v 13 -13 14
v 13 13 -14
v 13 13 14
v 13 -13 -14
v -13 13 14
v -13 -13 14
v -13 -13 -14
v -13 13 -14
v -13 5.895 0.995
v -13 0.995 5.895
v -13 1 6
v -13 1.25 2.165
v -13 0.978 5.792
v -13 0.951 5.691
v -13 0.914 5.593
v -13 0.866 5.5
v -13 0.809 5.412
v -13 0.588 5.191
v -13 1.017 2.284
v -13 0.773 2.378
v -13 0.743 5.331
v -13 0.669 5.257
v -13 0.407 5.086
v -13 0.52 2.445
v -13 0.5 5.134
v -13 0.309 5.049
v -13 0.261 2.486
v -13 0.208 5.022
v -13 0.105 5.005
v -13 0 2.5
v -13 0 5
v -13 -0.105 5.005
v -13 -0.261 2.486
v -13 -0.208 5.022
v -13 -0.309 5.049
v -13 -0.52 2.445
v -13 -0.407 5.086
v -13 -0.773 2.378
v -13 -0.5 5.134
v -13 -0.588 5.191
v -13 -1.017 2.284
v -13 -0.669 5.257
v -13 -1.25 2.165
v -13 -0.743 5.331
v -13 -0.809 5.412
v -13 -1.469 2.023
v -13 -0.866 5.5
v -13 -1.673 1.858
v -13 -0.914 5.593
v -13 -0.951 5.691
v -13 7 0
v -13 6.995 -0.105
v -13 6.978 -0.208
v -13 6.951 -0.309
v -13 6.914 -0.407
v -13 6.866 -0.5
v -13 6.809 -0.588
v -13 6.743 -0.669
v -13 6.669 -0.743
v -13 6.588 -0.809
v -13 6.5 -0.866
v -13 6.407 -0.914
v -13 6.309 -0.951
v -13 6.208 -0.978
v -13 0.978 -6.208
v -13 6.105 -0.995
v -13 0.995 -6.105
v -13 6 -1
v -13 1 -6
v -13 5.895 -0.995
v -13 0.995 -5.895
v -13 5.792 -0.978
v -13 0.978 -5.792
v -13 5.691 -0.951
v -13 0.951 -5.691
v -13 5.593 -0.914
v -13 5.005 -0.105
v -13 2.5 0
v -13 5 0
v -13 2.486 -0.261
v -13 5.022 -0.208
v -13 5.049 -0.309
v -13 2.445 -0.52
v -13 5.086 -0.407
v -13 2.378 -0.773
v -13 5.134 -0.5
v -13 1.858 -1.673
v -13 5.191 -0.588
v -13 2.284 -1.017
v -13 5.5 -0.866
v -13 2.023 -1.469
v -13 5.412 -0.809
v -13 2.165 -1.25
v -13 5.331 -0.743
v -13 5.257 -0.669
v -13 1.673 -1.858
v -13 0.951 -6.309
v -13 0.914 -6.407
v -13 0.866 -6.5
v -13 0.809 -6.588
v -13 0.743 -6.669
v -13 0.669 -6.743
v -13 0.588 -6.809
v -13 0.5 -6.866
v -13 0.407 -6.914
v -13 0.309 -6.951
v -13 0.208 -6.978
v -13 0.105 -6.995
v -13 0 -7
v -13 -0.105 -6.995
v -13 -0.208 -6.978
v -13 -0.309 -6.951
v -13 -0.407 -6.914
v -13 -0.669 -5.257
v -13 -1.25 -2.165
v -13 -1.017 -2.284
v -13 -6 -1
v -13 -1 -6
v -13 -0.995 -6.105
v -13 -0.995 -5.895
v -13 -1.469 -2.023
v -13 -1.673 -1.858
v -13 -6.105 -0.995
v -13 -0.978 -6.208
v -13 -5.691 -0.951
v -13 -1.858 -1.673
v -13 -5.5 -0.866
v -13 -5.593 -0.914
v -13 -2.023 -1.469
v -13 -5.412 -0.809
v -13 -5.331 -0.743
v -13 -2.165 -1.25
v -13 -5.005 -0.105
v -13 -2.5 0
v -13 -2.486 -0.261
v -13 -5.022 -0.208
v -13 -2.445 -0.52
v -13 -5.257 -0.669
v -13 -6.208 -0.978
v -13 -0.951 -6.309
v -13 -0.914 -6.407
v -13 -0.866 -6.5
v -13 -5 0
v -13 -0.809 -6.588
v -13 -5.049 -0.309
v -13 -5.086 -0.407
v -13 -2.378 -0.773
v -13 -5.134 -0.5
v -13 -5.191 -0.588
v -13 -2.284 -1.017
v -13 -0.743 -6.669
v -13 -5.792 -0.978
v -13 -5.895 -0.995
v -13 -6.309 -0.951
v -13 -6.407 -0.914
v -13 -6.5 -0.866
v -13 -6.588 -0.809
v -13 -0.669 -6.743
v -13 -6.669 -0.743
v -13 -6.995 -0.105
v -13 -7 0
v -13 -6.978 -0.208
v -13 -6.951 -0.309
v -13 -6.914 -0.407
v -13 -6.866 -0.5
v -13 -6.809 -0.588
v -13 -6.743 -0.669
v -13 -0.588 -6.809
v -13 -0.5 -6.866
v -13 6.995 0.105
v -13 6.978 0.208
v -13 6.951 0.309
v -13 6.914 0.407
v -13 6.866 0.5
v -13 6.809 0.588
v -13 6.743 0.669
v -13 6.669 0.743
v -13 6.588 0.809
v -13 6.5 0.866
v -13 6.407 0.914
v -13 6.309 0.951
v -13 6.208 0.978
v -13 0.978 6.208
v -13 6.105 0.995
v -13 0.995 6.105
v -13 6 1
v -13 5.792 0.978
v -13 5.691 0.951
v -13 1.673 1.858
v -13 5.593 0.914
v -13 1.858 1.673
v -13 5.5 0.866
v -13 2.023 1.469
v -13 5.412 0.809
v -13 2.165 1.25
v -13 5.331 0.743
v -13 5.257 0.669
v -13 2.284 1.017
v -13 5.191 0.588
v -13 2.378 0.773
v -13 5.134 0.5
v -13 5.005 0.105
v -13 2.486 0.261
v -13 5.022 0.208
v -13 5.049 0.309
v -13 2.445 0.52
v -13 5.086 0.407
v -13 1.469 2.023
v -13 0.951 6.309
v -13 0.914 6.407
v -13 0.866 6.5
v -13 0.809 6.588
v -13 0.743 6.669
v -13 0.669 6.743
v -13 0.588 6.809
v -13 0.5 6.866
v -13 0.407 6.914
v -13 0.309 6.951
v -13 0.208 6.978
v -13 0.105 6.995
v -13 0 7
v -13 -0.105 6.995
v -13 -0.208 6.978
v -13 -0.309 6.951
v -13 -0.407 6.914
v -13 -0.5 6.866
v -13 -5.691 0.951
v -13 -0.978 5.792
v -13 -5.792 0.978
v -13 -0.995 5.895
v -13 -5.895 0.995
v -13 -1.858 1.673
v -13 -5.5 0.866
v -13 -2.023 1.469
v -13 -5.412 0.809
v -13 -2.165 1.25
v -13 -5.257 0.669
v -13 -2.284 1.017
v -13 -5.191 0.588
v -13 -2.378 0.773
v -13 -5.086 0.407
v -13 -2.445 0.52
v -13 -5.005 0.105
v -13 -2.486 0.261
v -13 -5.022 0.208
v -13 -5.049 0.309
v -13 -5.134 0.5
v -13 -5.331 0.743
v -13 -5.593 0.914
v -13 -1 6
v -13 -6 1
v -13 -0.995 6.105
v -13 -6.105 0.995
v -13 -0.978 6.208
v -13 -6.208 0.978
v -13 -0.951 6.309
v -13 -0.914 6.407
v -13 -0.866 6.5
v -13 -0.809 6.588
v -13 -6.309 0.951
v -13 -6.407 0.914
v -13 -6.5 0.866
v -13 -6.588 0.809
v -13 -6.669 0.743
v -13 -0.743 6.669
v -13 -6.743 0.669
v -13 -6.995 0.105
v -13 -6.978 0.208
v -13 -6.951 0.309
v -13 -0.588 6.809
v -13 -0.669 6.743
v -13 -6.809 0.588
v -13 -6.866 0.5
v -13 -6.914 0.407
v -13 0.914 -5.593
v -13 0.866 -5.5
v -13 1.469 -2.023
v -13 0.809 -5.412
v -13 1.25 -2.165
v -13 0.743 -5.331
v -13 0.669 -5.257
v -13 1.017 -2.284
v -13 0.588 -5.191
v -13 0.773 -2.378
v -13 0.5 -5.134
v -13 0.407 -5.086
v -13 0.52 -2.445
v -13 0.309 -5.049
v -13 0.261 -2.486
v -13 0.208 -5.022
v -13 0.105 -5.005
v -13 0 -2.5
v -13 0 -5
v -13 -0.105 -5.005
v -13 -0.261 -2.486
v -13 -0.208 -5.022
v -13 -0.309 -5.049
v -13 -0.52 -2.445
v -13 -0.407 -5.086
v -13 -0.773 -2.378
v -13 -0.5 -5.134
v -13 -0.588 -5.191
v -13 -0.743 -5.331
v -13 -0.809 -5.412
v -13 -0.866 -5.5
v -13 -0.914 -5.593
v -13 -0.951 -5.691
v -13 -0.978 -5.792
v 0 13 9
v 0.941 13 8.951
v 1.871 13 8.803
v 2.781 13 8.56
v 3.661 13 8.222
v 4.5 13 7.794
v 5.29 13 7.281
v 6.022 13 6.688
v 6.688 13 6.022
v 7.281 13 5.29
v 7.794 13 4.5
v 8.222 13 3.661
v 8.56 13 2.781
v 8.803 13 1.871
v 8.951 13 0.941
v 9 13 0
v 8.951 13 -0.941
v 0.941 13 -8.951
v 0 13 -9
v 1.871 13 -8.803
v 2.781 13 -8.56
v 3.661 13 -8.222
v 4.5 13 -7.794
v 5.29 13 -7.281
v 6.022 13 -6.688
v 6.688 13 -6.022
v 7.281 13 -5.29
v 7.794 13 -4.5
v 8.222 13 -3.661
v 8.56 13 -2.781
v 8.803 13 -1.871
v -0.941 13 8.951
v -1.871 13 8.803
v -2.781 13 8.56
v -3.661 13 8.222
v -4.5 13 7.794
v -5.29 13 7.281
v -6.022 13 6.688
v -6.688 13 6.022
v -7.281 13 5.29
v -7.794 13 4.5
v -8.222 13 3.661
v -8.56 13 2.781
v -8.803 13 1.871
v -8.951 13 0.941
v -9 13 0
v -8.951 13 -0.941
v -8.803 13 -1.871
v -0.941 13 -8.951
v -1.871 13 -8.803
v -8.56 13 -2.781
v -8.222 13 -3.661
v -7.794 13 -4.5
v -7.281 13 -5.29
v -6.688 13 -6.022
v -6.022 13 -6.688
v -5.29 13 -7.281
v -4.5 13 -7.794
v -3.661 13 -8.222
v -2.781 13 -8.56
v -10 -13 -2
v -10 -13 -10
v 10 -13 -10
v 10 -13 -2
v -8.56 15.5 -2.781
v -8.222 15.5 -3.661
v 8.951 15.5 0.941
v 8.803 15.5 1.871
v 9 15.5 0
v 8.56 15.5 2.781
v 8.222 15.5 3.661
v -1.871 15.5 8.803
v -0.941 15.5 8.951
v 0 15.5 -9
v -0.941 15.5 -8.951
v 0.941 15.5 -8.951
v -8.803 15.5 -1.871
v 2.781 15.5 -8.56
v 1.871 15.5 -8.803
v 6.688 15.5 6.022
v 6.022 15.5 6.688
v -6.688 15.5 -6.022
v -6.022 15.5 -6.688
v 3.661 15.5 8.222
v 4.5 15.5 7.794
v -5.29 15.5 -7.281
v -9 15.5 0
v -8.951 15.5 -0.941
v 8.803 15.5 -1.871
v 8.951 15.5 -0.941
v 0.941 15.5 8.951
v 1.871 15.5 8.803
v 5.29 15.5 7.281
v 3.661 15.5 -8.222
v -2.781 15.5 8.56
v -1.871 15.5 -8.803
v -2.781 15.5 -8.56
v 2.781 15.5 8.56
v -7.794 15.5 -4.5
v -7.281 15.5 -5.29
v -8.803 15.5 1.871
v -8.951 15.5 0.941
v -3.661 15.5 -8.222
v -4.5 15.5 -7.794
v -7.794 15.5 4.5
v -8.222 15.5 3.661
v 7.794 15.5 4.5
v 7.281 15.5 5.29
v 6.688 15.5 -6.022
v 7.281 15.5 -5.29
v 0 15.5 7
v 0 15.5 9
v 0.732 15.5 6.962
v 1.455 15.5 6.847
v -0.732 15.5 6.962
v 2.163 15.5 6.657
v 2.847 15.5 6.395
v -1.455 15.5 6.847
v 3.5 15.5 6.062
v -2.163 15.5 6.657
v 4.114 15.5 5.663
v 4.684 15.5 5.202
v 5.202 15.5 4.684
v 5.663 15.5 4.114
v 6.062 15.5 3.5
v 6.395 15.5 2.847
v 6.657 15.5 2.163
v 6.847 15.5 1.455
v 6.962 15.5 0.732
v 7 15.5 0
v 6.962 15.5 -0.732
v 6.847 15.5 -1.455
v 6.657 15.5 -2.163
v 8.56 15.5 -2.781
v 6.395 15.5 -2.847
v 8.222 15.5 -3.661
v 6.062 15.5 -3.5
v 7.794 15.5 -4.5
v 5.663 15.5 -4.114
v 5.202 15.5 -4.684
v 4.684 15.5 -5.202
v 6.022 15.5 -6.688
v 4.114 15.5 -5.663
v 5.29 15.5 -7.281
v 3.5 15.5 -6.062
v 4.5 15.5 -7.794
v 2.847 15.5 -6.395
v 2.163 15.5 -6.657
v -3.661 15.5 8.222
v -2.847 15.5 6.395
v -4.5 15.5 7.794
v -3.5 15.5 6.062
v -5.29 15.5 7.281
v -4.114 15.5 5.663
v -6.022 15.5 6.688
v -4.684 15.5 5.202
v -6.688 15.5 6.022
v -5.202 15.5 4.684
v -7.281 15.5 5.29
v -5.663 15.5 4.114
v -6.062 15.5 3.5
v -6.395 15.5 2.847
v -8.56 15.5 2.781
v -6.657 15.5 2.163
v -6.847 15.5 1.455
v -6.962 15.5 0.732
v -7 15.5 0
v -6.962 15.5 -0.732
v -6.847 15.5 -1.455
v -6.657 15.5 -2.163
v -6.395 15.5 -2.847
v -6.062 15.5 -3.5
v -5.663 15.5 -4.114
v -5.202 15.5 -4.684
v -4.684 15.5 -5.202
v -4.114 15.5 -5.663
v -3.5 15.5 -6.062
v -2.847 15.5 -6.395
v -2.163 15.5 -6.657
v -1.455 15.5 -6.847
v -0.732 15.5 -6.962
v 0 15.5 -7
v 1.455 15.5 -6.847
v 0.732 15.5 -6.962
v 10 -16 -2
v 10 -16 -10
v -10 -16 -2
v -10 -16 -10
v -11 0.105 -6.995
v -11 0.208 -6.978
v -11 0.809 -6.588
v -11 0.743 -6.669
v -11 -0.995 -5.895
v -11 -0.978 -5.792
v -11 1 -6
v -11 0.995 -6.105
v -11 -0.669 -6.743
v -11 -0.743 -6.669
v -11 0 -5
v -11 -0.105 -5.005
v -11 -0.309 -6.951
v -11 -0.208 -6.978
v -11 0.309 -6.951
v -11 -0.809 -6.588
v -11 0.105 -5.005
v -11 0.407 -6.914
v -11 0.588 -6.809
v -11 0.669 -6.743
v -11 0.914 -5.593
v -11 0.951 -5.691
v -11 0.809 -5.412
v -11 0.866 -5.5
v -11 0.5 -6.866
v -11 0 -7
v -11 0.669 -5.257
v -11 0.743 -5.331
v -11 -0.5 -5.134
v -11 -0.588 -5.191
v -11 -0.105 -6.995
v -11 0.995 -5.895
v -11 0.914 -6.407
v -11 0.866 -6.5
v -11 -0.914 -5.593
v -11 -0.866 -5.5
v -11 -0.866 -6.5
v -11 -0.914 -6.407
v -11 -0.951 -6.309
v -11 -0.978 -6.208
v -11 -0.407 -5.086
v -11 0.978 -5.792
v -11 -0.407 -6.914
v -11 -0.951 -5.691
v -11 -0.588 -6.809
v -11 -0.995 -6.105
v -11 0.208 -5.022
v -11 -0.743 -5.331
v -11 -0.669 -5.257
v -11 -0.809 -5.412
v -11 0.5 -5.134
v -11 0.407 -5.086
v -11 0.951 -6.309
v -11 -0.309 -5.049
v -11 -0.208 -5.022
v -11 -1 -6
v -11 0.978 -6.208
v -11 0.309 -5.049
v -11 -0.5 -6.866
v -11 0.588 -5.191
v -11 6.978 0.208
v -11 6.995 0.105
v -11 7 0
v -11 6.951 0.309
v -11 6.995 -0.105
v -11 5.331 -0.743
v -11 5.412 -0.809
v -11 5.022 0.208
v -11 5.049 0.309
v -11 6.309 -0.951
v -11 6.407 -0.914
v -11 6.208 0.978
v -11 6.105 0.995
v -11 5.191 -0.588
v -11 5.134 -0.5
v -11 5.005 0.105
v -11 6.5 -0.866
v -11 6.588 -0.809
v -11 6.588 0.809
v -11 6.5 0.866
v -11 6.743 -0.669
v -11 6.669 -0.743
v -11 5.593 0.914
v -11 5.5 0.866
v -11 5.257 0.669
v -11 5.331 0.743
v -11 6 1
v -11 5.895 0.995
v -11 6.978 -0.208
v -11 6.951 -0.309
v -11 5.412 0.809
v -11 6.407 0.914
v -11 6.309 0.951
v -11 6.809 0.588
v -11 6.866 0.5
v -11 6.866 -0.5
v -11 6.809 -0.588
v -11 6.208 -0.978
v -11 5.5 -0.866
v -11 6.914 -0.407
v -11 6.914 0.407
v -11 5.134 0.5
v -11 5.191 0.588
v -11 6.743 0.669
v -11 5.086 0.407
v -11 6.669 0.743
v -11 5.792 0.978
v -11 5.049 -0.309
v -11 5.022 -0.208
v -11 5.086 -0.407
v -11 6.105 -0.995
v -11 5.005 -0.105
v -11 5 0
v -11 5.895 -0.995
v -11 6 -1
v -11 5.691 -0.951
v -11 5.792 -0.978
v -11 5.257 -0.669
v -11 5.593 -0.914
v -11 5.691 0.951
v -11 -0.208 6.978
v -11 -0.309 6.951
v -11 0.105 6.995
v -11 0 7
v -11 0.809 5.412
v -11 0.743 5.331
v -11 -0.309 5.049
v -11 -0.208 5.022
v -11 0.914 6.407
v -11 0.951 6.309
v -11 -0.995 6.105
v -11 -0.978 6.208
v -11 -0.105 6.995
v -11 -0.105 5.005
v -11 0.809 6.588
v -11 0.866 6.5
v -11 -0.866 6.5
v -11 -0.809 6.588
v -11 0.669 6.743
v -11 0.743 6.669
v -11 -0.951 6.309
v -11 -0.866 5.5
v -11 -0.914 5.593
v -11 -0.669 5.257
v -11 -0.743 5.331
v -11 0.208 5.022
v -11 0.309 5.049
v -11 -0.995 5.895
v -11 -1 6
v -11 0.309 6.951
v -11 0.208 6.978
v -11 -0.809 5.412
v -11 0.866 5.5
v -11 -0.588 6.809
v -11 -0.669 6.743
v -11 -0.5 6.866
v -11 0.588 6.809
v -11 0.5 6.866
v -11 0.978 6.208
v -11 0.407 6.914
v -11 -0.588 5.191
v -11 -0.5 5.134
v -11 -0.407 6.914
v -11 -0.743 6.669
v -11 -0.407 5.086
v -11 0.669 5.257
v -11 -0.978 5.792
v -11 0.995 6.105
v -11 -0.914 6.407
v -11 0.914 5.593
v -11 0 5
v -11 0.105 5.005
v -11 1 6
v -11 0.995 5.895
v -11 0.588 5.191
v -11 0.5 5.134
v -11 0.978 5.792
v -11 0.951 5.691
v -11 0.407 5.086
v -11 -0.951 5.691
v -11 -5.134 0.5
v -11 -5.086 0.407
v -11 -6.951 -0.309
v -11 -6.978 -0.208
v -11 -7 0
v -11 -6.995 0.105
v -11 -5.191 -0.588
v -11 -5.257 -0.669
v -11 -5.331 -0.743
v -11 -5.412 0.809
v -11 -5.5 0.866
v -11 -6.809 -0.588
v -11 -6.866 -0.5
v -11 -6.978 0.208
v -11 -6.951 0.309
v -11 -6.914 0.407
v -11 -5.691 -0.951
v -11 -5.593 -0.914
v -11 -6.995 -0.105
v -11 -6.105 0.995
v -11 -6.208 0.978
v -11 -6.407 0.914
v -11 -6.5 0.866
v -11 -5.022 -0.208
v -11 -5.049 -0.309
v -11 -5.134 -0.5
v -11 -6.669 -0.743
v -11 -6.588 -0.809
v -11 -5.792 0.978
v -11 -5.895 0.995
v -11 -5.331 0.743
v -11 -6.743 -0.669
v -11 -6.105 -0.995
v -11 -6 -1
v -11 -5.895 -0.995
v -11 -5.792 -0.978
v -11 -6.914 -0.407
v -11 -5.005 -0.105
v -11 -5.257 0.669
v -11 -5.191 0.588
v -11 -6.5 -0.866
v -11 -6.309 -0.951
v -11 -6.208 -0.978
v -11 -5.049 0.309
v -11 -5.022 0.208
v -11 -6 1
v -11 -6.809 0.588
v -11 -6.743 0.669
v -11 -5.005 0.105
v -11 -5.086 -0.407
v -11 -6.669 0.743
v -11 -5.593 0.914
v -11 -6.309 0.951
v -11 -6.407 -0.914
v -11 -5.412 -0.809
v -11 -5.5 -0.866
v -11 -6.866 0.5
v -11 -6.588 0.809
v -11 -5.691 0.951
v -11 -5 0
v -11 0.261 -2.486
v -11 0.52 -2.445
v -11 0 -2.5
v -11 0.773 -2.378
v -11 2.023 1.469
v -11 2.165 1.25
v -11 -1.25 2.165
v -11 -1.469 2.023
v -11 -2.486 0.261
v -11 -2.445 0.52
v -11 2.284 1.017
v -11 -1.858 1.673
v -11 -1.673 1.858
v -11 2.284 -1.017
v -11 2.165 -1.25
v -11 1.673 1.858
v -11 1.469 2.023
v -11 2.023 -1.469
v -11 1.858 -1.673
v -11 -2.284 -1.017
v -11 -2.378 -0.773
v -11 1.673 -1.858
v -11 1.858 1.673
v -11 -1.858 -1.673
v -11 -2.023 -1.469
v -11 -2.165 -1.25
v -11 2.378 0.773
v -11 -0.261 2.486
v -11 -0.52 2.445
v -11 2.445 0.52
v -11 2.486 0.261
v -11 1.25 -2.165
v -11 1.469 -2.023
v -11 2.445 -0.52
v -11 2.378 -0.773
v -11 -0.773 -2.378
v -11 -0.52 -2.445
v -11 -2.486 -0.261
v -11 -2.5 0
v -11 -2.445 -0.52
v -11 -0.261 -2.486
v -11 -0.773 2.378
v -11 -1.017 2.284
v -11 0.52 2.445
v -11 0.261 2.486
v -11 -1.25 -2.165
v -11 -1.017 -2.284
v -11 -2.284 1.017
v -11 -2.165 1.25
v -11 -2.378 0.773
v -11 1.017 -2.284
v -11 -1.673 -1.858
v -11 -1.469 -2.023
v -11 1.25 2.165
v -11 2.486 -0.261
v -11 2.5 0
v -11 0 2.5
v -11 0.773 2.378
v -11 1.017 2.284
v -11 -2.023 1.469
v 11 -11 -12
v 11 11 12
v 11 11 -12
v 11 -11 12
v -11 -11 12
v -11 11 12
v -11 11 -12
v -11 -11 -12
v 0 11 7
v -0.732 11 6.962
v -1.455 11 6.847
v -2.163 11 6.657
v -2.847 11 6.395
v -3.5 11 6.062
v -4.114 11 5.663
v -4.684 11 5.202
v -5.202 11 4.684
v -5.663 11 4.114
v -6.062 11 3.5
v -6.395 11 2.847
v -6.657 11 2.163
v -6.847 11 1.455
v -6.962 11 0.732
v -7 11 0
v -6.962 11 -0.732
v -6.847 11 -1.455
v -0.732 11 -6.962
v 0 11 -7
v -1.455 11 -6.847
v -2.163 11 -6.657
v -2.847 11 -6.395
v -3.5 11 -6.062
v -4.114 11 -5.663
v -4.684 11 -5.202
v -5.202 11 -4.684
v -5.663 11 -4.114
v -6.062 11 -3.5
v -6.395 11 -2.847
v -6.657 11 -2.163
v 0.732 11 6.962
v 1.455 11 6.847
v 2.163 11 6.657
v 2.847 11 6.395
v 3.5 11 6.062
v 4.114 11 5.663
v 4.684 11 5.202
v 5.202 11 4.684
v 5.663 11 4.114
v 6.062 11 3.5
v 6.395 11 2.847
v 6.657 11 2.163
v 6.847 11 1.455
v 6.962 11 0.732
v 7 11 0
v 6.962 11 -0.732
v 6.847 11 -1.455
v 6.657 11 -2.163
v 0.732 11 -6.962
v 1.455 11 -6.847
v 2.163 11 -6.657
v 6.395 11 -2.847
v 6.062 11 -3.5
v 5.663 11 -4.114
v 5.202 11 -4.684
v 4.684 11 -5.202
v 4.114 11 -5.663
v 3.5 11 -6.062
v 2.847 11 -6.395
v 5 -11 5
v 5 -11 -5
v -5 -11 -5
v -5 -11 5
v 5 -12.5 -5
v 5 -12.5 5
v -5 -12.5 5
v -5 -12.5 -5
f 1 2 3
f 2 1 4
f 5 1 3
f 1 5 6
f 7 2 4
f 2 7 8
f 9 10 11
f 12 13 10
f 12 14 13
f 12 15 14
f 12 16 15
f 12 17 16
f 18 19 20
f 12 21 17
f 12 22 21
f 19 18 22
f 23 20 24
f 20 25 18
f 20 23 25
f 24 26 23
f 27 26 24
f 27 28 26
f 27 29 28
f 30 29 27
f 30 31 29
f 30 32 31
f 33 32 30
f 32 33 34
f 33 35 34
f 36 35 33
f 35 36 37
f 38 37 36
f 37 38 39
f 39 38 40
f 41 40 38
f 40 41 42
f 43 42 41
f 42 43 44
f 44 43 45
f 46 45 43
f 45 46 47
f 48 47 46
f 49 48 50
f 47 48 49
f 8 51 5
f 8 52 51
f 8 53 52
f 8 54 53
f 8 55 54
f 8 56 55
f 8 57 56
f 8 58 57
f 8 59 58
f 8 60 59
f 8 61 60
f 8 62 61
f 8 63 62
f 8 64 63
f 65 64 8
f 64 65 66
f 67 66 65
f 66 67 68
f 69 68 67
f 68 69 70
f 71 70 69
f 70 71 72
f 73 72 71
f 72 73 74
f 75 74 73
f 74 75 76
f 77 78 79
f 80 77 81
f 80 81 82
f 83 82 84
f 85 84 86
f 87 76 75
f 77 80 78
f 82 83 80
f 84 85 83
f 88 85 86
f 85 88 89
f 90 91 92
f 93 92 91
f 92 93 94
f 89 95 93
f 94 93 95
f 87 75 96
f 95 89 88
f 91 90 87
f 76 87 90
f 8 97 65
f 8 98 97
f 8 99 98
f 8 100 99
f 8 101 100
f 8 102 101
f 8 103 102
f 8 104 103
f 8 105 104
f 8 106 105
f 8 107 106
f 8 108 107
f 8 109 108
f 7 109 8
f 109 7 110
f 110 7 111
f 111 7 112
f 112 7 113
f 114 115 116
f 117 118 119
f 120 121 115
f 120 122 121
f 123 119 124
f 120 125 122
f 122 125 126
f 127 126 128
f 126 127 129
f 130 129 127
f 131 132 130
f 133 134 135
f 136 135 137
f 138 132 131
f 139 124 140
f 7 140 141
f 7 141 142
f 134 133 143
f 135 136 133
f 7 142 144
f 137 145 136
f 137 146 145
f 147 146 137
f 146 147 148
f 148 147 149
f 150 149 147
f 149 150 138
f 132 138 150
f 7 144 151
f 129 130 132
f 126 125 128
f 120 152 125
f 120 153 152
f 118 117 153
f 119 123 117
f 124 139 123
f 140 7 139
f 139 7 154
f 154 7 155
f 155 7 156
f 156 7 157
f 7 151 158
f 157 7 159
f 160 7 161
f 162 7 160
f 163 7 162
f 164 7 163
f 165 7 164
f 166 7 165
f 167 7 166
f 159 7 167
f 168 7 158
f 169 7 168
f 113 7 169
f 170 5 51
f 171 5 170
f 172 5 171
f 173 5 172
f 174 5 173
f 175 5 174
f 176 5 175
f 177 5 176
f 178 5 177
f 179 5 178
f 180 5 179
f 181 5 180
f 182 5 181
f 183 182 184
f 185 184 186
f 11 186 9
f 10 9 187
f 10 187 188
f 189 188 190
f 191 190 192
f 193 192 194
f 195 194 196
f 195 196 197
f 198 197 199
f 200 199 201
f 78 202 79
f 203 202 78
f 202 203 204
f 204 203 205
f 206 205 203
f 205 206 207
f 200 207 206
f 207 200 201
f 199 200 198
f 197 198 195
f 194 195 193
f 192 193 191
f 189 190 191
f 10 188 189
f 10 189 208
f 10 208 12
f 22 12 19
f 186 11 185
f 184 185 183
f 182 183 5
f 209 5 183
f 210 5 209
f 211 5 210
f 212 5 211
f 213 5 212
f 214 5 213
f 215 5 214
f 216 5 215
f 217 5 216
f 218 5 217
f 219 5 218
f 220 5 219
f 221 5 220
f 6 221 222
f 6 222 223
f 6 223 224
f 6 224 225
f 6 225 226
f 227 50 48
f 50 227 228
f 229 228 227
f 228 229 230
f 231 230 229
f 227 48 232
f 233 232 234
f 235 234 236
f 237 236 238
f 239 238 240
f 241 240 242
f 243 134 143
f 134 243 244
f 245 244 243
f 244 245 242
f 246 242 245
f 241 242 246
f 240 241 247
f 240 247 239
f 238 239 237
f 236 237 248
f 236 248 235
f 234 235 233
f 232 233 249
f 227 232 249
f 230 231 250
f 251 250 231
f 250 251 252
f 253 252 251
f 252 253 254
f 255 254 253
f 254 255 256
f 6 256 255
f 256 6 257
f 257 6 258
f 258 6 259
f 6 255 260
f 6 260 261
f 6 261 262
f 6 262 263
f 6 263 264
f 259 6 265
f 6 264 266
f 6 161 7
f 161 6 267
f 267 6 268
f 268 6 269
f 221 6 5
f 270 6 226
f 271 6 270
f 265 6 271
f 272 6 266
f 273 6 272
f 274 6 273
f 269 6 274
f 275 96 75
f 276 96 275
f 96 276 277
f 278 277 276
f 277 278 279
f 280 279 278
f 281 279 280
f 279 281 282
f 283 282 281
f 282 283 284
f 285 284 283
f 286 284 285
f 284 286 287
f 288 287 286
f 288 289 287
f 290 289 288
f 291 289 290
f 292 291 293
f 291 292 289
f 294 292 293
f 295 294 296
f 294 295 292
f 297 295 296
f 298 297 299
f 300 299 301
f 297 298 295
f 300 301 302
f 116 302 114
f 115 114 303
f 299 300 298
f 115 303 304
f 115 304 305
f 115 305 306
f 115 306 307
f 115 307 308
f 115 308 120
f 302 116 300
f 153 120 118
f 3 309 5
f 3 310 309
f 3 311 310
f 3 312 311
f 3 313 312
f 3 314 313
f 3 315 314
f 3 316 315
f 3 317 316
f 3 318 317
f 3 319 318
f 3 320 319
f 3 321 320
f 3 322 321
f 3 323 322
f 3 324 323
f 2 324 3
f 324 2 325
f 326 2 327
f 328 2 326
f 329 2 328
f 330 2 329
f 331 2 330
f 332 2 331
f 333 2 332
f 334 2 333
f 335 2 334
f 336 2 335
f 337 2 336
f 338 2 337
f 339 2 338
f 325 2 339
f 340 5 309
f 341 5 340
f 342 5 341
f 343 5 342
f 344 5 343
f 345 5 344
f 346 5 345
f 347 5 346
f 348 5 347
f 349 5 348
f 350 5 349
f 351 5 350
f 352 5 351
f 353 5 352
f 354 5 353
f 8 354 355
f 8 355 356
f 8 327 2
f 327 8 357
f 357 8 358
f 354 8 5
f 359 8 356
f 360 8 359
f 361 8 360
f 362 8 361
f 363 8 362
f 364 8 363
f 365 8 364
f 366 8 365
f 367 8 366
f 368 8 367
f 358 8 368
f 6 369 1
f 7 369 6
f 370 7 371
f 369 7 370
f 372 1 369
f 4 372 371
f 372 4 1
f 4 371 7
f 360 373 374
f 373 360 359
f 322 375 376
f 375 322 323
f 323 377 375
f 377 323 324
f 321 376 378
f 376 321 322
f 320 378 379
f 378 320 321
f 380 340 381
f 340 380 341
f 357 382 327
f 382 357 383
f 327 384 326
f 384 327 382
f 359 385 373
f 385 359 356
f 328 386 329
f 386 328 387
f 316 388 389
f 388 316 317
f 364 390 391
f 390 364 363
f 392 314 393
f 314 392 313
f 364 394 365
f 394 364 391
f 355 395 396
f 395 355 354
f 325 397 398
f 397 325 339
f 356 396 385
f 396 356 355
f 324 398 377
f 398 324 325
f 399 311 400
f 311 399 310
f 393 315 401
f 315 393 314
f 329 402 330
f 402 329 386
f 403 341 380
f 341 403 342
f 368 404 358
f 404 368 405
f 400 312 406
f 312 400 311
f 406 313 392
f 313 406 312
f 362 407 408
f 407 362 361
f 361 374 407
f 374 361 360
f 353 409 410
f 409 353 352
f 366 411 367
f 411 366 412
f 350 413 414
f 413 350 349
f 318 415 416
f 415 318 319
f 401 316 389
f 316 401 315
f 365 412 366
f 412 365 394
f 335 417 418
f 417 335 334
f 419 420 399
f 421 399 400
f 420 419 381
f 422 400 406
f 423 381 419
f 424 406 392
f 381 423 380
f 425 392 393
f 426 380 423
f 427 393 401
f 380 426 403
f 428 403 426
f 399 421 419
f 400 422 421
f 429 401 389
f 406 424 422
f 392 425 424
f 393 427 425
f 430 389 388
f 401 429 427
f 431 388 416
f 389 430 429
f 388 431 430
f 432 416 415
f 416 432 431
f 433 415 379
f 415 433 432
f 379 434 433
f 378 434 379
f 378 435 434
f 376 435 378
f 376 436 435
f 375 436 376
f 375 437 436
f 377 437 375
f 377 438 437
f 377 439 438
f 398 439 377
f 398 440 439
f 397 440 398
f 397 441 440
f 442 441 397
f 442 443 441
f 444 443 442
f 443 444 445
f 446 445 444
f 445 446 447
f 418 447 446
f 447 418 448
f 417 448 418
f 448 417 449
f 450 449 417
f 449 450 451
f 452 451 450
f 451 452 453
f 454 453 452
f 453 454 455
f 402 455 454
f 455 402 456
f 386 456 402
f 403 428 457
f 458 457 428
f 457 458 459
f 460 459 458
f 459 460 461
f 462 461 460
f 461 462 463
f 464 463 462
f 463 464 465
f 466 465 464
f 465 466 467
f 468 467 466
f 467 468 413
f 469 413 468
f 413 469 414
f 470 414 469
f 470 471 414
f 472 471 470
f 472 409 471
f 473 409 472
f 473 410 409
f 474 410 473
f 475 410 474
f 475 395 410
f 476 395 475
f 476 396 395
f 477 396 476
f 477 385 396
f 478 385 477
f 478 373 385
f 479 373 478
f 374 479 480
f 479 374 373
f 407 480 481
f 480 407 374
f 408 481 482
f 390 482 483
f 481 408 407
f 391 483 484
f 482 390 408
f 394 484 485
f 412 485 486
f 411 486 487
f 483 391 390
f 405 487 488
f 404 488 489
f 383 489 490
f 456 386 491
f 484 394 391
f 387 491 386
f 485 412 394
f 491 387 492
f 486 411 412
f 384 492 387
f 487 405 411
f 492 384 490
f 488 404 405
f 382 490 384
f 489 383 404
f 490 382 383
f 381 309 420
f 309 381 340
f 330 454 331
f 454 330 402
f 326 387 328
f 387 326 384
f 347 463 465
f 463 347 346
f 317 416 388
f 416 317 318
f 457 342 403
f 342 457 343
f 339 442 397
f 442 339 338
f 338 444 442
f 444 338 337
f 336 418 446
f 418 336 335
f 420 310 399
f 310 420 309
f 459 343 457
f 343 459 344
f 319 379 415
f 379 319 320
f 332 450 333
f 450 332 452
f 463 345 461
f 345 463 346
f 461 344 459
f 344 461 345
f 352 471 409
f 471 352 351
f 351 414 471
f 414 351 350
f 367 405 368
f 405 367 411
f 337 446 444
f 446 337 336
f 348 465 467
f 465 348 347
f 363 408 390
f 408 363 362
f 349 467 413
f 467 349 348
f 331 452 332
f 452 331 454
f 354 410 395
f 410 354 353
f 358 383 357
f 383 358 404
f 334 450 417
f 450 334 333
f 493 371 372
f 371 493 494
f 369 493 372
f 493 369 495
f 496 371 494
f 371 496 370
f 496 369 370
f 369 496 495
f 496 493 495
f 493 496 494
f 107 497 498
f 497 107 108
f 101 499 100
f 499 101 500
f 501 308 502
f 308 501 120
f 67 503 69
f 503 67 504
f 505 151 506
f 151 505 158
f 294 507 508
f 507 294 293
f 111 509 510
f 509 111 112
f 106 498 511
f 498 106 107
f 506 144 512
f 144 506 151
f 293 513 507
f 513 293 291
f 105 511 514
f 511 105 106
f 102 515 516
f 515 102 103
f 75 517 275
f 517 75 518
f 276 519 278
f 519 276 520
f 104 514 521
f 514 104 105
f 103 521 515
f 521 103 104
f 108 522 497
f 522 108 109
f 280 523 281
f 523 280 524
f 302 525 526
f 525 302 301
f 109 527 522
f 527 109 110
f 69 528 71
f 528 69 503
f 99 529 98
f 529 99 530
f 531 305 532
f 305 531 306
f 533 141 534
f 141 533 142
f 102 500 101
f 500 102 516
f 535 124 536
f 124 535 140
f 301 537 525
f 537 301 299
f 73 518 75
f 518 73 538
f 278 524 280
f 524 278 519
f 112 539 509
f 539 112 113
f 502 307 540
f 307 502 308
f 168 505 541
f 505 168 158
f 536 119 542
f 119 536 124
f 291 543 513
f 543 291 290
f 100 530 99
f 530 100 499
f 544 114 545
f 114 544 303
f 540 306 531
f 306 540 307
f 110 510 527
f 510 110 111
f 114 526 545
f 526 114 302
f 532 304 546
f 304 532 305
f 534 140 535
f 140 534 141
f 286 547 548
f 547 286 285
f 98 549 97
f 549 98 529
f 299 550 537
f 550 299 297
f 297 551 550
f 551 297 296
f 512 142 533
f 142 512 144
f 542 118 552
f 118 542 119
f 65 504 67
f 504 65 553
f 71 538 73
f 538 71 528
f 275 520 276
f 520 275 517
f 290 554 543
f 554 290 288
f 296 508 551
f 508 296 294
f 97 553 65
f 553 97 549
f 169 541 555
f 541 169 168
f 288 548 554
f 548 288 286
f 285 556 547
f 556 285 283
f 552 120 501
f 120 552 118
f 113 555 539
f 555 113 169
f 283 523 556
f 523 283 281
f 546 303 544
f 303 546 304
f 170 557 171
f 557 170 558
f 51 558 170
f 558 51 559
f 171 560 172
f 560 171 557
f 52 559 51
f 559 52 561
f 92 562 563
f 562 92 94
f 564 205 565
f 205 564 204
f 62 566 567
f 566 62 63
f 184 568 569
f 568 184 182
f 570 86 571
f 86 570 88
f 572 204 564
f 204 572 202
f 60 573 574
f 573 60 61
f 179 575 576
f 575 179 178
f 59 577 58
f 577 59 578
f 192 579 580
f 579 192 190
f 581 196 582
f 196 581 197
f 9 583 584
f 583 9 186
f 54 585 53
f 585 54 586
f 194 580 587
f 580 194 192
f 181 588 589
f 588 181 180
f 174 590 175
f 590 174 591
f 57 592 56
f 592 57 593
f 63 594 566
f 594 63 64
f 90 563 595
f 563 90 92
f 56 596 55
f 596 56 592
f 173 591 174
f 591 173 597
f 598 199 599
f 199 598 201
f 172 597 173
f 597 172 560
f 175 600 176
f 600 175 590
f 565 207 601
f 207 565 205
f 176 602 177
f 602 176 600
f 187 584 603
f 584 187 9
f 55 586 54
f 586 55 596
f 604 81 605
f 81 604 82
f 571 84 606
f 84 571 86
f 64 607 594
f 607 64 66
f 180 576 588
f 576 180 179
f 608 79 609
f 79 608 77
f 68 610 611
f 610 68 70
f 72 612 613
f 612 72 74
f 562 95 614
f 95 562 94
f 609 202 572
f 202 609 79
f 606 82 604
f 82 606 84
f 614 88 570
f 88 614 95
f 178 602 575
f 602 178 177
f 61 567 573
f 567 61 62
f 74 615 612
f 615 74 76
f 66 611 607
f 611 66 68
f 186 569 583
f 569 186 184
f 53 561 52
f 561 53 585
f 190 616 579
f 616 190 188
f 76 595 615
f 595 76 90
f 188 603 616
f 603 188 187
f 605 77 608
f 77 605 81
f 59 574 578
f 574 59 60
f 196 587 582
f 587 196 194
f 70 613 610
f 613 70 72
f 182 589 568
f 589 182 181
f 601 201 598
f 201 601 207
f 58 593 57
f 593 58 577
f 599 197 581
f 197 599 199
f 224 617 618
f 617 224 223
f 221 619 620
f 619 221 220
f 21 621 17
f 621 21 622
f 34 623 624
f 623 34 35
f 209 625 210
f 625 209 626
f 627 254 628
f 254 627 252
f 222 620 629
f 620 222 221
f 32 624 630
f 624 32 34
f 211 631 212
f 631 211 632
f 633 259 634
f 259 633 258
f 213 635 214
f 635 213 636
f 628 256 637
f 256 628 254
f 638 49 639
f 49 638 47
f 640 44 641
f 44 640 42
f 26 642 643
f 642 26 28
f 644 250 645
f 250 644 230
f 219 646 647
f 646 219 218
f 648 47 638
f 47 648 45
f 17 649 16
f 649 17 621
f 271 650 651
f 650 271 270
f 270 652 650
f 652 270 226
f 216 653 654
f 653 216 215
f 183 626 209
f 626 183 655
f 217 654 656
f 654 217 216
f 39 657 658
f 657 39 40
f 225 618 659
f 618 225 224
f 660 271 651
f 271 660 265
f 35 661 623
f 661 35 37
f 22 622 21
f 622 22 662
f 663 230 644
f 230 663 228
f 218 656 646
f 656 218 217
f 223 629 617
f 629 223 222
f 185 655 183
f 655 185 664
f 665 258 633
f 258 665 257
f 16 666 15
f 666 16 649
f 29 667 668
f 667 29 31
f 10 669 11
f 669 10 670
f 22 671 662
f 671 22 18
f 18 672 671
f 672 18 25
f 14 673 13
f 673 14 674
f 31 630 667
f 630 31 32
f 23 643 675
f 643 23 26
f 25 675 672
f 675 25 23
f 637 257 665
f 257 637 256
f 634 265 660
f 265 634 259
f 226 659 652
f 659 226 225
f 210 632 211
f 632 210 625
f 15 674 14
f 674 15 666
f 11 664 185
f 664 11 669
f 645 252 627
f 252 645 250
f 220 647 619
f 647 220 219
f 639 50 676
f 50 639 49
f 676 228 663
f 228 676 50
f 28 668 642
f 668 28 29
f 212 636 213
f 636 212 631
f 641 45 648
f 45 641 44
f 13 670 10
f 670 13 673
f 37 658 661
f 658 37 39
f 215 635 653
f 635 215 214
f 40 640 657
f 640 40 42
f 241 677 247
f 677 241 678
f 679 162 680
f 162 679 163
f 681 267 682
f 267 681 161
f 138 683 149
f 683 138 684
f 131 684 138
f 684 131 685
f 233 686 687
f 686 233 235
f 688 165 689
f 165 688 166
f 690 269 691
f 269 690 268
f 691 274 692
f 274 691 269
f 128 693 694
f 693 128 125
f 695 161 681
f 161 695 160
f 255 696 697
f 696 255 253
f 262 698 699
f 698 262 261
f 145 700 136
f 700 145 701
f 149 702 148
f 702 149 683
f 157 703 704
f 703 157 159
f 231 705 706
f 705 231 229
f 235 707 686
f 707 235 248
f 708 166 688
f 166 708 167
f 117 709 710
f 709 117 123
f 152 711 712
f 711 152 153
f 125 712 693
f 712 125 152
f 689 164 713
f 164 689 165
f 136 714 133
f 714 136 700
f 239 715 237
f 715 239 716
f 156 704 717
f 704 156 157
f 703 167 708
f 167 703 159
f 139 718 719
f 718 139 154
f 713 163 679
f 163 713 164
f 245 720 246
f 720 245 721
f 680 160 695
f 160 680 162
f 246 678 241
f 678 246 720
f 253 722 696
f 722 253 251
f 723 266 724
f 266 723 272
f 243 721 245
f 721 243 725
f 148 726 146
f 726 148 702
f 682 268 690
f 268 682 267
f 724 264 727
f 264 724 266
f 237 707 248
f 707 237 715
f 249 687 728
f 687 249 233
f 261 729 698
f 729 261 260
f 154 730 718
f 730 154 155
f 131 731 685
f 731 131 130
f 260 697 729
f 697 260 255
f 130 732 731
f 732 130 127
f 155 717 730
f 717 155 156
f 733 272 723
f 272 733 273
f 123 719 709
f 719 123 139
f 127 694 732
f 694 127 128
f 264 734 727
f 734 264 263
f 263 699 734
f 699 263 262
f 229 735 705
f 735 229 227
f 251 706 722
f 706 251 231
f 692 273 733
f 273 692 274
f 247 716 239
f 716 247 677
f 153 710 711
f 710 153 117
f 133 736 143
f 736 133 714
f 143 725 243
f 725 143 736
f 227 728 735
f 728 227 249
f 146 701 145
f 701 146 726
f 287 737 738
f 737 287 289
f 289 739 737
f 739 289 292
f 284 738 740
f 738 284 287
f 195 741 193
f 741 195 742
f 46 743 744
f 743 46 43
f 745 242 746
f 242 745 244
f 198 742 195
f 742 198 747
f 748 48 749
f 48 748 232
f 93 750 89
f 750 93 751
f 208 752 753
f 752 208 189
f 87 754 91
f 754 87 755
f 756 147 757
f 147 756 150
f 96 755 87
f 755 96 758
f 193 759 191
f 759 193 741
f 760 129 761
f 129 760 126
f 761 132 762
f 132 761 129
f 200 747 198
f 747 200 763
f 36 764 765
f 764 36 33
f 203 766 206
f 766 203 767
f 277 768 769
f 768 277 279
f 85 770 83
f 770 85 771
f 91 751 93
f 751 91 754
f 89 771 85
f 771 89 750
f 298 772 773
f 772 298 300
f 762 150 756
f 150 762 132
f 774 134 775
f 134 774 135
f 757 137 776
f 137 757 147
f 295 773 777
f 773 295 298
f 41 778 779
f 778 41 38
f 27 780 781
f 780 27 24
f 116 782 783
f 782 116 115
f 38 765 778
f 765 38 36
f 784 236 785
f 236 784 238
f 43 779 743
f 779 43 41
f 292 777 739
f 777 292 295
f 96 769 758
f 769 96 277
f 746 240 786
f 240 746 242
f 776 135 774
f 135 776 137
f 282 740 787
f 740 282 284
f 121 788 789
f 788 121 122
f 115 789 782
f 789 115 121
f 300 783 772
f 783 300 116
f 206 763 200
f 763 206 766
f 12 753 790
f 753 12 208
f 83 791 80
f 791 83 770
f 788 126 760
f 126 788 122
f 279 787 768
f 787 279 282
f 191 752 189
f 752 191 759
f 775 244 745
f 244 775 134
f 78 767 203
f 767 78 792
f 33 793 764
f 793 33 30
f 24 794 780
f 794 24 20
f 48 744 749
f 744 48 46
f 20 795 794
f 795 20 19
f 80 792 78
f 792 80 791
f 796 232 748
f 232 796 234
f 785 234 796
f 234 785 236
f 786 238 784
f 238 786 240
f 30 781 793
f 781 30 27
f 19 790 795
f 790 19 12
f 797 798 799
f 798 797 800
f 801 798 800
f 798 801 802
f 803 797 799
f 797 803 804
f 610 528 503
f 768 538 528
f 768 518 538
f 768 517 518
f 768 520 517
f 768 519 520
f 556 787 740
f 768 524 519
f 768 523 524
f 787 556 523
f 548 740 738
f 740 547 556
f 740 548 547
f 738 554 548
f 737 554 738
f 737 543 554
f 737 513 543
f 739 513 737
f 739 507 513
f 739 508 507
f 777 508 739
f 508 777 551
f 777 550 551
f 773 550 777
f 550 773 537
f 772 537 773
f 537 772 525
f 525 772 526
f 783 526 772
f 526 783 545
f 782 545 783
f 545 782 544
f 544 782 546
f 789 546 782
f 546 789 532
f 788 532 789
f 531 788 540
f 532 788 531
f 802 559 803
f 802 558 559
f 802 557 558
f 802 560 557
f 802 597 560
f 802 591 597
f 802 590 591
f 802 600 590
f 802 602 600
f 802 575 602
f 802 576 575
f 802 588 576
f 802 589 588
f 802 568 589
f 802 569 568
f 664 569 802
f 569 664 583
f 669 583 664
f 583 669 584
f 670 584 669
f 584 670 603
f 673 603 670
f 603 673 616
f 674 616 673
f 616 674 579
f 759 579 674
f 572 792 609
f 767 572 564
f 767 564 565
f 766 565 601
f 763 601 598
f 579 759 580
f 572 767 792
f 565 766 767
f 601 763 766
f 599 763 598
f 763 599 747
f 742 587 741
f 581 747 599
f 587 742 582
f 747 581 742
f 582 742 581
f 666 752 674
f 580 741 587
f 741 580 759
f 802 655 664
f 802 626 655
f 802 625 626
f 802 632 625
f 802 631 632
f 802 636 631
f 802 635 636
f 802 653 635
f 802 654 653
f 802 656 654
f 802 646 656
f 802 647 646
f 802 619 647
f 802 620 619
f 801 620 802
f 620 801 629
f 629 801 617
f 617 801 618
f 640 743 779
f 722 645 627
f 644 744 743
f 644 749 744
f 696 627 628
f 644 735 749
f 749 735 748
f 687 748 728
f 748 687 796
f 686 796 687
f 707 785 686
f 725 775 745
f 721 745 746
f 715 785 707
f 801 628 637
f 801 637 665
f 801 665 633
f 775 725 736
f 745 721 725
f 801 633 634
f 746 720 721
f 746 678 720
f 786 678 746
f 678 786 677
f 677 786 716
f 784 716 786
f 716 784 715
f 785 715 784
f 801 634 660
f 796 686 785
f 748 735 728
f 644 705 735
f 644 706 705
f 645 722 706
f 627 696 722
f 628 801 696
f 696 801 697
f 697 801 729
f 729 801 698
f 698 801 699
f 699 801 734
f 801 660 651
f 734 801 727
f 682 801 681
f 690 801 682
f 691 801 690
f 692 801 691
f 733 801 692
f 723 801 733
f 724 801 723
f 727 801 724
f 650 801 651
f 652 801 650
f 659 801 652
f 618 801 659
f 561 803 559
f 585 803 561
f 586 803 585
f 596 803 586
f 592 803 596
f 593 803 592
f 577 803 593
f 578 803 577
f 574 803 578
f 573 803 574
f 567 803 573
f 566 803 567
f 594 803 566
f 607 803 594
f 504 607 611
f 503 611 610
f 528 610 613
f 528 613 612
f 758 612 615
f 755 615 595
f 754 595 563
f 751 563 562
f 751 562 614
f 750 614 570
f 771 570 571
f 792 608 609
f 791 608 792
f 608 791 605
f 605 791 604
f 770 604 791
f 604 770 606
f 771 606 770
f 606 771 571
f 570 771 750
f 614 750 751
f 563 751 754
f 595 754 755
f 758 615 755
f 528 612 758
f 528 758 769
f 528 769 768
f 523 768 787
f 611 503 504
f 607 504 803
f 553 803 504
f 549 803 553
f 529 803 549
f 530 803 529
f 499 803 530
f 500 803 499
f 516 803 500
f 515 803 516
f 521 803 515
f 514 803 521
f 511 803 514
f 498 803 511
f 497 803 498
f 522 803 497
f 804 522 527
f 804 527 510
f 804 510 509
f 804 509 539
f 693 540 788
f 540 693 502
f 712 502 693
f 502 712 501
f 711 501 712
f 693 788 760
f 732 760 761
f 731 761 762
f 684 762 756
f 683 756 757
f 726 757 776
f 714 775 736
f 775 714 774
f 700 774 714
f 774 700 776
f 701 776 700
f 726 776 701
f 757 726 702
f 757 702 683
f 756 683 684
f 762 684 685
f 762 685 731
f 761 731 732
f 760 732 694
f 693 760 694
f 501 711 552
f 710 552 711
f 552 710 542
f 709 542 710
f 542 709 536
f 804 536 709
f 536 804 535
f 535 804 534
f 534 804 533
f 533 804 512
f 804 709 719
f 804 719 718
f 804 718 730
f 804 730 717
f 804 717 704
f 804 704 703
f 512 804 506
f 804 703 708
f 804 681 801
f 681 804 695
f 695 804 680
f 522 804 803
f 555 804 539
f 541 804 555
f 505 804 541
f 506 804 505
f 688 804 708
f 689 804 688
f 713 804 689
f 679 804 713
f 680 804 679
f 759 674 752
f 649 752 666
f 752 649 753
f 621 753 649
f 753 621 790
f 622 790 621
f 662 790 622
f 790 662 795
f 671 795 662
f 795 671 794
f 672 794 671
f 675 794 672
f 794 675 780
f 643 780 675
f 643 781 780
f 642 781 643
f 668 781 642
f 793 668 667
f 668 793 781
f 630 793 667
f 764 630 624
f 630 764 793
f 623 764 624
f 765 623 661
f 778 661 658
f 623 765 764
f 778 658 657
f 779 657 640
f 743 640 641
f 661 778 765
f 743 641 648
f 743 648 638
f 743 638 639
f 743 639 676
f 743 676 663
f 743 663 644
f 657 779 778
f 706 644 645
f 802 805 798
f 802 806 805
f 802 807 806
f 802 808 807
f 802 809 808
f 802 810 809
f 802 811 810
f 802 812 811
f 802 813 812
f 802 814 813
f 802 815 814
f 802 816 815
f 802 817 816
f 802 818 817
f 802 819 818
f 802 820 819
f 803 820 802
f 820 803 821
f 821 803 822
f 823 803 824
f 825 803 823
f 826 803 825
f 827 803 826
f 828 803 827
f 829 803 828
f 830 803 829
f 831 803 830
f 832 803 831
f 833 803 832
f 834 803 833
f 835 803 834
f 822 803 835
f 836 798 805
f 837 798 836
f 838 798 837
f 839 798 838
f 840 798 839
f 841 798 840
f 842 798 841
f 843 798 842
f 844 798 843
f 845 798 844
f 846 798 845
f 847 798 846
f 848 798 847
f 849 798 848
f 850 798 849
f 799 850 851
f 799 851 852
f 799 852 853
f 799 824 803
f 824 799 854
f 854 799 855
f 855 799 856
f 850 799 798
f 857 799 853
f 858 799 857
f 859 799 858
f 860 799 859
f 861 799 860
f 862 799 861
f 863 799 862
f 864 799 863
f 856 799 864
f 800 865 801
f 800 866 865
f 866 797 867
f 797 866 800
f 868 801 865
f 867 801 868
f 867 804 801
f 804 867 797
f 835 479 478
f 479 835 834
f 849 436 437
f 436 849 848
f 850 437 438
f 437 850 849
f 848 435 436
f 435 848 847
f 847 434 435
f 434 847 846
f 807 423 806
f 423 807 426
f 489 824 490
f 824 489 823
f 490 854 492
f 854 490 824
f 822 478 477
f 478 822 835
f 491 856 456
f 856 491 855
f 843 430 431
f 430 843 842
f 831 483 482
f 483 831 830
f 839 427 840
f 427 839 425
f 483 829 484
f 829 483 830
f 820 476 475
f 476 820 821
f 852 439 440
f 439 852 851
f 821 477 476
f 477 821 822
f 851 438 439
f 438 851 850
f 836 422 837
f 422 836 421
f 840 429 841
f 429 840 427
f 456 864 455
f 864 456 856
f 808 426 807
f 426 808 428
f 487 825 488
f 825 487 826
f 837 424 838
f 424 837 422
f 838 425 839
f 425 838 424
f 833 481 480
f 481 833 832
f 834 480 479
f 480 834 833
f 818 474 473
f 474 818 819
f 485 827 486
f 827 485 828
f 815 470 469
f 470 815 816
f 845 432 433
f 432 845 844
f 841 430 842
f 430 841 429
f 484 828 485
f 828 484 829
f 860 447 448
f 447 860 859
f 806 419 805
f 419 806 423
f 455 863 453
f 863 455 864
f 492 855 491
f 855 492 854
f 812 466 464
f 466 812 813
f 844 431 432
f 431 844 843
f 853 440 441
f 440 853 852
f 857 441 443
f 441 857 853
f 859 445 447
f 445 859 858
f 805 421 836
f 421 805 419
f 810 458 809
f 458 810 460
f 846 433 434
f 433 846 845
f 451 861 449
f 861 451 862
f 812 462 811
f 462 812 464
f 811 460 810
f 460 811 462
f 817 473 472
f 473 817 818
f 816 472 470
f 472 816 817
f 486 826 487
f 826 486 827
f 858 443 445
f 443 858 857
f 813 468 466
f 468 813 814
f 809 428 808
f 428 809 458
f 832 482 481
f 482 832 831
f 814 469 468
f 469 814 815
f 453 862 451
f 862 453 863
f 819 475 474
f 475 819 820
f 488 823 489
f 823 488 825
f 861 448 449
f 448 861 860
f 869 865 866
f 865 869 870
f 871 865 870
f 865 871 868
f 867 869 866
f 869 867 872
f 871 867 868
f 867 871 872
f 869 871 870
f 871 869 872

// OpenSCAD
// Pitch Axis Camera Cradle with Lens Mount & IMU Pocket
$fn = 60;

module camera_cradle() {
    difference() {
        union() {
            // Main camera enclosure cube (26mm x 26mm x 28mm)
            cube([26, 26, 28], center=true);
            
            // Lens barrel bezel
            translate([0, 13, 0]) rotate([90, 0, 0]) cylinder(d=18, h=5, center=true);
            
            // Counterweight balance wing
            translate([0, -14, -6]) cube([20, 4, 8], center=true);
        }
        
        // Internal sensor pocket (holds 1/1.3" CMOS sensor board)
        translate([0, 0, 0]) cube([22, 22, 24], center=true);
        
        // Lens optical aperture (14mm diameter)
        translate([0, 14, 0]) rotate([90, 0, 0]) cylinder(d=14, h=10, center=true);
        
        // Direct IMU (ICM-42688-P) pocket on rear of sensor PCB for zero-lag attitude sensing
        translate([0, -11, 0]) cube([10, 3, 10], center=true);
        
        // Side motor coupling plate (M2 screw holes)
        translate([-13, 0, 0]) rotate([0, 90, 0]) {
            cylinder(d=5, h=5, center=true);
            for (a = [0, 90, 180, 270]) {
                rotate([0, 0, a]) translate([6, 0, 0]) cylinder(d=2.0, h=6, center=true);
            }
        }
    }
}

camera_cradle();
